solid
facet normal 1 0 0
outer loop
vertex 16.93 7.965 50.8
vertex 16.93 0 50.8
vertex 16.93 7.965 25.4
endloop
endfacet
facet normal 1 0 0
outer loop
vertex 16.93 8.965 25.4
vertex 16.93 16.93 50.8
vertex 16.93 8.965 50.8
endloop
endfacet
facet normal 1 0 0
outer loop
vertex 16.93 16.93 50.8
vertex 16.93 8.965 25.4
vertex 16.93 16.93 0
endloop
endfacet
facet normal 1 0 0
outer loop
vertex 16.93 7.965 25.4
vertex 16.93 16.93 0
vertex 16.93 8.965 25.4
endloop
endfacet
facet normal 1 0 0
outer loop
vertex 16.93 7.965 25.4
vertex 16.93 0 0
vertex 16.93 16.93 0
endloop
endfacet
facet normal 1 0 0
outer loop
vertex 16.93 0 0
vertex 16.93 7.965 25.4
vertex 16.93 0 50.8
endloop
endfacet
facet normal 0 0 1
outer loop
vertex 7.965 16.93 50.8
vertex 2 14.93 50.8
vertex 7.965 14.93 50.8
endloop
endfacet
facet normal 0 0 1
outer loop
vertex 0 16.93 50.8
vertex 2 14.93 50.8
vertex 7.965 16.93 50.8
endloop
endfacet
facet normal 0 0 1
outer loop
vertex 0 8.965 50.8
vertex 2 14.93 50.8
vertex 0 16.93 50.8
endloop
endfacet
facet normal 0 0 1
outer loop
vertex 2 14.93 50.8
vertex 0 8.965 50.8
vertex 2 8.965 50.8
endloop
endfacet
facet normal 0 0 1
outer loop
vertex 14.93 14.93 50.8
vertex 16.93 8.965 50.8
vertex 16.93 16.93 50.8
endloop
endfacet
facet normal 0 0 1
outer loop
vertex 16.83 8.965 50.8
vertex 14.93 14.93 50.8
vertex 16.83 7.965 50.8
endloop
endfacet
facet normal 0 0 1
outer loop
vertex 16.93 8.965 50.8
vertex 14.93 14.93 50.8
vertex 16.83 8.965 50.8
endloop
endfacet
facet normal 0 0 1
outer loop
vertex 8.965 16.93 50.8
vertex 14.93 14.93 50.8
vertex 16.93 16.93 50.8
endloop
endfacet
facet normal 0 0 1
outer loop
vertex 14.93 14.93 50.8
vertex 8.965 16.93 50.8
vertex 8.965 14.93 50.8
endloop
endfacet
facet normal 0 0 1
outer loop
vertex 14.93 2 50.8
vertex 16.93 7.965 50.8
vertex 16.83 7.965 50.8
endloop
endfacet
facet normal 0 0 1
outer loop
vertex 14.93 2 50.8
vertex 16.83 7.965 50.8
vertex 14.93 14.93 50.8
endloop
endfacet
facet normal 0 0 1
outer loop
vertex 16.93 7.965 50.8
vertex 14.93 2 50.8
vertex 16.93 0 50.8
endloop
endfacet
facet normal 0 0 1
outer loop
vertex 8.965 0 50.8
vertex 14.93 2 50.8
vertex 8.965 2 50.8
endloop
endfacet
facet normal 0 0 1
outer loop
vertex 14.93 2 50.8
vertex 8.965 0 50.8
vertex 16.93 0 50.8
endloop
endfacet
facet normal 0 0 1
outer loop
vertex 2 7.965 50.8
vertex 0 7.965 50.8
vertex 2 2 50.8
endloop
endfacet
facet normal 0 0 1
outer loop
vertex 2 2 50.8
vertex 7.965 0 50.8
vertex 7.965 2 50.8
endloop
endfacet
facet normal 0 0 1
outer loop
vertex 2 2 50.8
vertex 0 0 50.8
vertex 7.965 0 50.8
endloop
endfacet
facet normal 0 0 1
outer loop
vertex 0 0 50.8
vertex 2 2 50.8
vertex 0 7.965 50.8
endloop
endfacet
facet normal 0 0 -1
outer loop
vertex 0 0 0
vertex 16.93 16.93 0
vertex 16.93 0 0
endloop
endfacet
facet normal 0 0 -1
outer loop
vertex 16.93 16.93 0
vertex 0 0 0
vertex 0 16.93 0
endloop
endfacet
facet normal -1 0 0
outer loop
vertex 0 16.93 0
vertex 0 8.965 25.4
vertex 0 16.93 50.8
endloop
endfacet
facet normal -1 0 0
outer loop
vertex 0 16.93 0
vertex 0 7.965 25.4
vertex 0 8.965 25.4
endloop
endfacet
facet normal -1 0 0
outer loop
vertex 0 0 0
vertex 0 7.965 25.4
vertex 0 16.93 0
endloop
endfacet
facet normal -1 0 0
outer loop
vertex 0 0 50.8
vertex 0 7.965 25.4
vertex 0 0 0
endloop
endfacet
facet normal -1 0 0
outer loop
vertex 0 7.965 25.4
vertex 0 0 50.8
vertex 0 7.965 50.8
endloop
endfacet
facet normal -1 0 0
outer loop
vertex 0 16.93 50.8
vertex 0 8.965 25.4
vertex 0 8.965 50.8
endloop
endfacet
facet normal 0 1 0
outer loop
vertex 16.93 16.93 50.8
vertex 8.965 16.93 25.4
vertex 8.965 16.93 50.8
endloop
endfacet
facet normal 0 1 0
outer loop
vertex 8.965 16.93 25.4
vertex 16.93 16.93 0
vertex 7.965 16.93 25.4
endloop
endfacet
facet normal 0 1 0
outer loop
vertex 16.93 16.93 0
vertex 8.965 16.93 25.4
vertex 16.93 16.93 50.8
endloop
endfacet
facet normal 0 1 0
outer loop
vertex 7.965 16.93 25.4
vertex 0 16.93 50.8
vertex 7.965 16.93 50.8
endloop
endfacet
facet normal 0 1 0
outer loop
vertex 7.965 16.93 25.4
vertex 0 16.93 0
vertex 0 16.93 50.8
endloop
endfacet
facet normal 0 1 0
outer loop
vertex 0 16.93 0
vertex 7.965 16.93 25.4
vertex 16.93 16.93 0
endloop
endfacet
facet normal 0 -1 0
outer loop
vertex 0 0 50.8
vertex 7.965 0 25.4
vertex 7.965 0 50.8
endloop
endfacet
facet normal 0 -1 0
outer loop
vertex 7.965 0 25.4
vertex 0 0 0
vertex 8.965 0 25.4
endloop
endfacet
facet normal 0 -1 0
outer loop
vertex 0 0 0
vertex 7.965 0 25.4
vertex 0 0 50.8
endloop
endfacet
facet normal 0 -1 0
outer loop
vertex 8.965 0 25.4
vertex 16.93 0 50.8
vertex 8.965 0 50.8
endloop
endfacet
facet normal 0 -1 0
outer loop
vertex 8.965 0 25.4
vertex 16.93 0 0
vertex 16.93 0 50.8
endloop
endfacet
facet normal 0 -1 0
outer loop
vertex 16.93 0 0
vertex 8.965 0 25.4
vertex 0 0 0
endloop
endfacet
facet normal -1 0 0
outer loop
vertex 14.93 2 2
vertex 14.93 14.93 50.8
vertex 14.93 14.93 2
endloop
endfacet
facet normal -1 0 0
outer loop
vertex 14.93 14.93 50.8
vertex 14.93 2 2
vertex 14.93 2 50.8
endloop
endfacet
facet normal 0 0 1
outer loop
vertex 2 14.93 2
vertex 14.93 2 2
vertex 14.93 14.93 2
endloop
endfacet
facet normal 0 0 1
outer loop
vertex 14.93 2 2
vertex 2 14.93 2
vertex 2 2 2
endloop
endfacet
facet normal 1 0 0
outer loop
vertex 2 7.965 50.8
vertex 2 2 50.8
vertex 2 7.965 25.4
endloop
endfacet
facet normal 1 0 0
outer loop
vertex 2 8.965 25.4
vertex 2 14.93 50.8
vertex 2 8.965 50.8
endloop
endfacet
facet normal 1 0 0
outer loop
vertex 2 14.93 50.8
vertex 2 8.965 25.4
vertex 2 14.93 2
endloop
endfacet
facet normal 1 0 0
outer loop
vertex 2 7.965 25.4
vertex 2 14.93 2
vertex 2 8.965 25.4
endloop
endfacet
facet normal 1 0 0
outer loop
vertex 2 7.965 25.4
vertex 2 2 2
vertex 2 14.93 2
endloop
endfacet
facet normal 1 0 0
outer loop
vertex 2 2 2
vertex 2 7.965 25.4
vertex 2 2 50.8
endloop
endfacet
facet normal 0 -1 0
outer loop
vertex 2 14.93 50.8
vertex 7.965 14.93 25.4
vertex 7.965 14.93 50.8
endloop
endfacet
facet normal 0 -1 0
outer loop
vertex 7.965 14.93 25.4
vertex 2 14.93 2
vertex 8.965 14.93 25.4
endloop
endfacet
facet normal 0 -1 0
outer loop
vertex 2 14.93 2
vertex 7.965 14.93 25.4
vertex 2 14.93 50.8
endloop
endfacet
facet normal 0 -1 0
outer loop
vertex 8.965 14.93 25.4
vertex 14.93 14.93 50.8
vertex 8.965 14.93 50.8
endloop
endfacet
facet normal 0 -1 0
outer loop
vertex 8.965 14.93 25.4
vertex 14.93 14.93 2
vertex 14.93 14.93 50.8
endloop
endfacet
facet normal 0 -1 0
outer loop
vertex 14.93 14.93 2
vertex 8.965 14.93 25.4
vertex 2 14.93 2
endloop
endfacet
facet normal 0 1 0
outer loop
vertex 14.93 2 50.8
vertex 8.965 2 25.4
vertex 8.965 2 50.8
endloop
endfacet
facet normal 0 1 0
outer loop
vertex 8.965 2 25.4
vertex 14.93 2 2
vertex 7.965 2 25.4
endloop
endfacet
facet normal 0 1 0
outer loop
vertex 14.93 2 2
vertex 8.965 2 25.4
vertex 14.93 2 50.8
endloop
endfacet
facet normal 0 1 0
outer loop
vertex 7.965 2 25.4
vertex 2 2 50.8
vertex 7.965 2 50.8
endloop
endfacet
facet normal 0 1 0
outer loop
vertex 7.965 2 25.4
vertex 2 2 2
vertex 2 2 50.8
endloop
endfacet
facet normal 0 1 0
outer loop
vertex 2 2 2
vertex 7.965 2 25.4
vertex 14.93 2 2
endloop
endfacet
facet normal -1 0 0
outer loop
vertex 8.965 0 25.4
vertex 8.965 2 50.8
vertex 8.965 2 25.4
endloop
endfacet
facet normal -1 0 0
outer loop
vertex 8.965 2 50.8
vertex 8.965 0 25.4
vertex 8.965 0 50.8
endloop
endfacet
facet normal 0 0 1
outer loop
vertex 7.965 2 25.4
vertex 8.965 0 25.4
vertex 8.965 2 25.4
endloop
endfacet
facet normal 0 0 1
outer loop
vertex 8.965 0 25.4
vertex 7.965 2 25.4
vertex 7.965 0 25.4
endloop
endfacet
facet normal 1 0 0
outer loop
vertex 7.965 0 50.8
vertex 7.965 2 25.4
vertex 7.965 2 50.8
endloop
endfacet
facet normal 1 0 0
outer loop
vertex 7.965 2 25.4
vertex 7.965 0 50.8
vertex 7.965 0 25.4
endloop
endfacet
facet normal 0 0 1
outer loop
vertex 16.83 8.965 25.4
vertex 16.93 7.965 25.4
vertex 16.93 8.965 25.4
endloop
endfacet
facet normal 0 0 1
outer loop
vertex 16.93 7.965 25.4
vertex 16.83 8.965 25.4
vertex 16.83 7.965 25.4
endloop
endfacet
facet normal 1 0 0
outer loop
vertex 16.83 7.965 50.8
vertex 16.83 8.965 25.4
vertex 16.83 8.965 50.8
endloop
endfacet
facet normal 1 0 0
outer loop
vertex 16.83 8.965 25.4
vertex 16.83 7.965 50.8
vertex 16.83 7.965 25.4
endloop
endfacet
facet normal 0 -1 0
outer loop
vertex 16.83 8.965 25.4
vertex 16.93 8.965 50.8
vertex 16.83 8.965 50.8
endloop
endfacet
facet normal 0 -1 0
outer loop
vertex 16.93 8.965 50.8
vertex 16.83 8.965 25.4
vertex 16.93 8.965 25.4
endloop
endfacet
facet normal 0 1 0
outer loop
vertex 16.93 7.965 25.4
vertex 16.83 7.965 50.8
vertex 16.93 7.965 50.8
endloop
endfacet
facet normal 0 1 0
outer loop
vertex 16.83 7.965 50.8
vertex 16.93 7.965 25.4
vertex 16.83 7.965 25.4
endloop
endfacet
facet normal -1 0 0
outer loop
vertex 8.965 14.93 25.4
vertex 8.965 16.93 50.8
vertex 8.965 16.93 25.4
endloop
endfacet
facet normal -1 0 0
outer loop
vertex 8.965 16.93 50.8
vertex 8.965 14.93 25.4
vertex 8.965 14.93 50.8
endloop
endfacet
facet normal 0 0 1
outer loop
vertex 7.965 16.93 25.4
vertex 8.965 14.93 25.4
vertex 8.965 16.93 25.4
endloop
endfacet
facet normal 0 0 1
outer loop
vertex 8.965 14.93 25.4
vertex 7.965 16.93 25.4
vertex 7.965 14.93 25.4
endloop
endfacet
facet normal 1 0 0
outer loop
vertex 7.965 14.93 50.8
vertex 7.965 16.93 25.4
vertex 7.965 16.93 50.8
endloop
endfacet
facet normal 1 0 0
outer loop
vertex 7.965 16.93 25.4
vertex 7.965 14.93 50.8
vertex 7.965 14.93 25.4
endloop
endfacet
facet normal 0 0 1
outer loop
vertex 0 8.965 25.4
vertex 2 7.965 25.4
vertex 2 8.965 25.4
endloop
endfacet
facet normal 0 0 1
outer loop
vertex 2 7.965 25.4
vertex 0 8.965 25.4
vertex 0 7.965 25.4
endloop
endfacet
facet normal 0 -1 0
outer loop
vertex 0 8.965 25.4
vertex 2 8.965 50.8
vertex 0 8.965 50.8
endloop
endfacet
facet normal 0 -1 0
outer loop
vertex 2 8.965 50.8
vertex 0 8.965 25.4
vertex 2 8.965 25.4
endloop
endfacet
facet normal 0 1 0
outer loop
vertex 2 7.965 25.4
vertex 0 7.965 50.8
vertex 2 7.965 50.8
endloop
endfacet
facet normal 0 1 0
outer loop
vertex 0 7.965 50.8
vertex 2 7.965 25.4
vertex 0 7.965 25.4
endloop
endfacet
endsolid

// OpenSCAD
// D&D Terrain Pillar Connector
// Parametric design for 3D printing

// === PARAMETERS (adjust these as needed) ===
pillar_height = 50.8;        // 2 inches in mm
face_width = 16.93;          // 2/3 inch in mm
wall_thickness = 2;          // Wall thickness in mm

slot_width = 1.0;            // Width of slot (for cardstock thickness + clearance)
slot_height = 25.4;          // Height of slot (1 inch, from top down)
slot_depth = wall_thickness; // Slots go through the wall
slot_from_top = 0;           // Distance from top to start slot (0 = starts at top)

// Calculated values
inner_size = face_width - (2 * wall_thickness);

// === MAIN MODEL ===
difference() {
    // Outer shell
    cube([face_width, face_width, pillar_height]);

    // Hollow interior (leave bottom solid for strength)
    translate([wall_thickness, wall_thickness, wall_thickness])
        cube([inner_size, inner_size, pillar_height]);

    // Slot on face 1 (front, centered, from top down)
    translate([face_width/2 - slot_width/2, -0.1, pillar_height - slot_from_top - slot_height])
        cube([slot_width, slot_depth + 0.1, slot_height]);

    // Slot on face 2 (right, centered, from top down)
    translate([face_width - 0.1, face_width/2 - slot_width/2, pillar_height - slot_from_top - slot_height])
        cube([slot_depth + 0.1, slot_width, slot_height]);

    // Slot on face 3 (back, centered, from top down)
    translate([face_width/2 - slot_width/2, face_width - slot_depth - 0.1, pillar_height - slot_from_top - slot_height])
        cube([slot_width, slot_depth + 0.1, slot_height]);

    // Slot on face 4 (left, centered, from top down)
    translate([-0.1, face_width/2 - slot_width/2, pillar_height - slot_from_top - slot_height])
        cube([slot_depth + 0.1, slot_width, slot_height]);
}
